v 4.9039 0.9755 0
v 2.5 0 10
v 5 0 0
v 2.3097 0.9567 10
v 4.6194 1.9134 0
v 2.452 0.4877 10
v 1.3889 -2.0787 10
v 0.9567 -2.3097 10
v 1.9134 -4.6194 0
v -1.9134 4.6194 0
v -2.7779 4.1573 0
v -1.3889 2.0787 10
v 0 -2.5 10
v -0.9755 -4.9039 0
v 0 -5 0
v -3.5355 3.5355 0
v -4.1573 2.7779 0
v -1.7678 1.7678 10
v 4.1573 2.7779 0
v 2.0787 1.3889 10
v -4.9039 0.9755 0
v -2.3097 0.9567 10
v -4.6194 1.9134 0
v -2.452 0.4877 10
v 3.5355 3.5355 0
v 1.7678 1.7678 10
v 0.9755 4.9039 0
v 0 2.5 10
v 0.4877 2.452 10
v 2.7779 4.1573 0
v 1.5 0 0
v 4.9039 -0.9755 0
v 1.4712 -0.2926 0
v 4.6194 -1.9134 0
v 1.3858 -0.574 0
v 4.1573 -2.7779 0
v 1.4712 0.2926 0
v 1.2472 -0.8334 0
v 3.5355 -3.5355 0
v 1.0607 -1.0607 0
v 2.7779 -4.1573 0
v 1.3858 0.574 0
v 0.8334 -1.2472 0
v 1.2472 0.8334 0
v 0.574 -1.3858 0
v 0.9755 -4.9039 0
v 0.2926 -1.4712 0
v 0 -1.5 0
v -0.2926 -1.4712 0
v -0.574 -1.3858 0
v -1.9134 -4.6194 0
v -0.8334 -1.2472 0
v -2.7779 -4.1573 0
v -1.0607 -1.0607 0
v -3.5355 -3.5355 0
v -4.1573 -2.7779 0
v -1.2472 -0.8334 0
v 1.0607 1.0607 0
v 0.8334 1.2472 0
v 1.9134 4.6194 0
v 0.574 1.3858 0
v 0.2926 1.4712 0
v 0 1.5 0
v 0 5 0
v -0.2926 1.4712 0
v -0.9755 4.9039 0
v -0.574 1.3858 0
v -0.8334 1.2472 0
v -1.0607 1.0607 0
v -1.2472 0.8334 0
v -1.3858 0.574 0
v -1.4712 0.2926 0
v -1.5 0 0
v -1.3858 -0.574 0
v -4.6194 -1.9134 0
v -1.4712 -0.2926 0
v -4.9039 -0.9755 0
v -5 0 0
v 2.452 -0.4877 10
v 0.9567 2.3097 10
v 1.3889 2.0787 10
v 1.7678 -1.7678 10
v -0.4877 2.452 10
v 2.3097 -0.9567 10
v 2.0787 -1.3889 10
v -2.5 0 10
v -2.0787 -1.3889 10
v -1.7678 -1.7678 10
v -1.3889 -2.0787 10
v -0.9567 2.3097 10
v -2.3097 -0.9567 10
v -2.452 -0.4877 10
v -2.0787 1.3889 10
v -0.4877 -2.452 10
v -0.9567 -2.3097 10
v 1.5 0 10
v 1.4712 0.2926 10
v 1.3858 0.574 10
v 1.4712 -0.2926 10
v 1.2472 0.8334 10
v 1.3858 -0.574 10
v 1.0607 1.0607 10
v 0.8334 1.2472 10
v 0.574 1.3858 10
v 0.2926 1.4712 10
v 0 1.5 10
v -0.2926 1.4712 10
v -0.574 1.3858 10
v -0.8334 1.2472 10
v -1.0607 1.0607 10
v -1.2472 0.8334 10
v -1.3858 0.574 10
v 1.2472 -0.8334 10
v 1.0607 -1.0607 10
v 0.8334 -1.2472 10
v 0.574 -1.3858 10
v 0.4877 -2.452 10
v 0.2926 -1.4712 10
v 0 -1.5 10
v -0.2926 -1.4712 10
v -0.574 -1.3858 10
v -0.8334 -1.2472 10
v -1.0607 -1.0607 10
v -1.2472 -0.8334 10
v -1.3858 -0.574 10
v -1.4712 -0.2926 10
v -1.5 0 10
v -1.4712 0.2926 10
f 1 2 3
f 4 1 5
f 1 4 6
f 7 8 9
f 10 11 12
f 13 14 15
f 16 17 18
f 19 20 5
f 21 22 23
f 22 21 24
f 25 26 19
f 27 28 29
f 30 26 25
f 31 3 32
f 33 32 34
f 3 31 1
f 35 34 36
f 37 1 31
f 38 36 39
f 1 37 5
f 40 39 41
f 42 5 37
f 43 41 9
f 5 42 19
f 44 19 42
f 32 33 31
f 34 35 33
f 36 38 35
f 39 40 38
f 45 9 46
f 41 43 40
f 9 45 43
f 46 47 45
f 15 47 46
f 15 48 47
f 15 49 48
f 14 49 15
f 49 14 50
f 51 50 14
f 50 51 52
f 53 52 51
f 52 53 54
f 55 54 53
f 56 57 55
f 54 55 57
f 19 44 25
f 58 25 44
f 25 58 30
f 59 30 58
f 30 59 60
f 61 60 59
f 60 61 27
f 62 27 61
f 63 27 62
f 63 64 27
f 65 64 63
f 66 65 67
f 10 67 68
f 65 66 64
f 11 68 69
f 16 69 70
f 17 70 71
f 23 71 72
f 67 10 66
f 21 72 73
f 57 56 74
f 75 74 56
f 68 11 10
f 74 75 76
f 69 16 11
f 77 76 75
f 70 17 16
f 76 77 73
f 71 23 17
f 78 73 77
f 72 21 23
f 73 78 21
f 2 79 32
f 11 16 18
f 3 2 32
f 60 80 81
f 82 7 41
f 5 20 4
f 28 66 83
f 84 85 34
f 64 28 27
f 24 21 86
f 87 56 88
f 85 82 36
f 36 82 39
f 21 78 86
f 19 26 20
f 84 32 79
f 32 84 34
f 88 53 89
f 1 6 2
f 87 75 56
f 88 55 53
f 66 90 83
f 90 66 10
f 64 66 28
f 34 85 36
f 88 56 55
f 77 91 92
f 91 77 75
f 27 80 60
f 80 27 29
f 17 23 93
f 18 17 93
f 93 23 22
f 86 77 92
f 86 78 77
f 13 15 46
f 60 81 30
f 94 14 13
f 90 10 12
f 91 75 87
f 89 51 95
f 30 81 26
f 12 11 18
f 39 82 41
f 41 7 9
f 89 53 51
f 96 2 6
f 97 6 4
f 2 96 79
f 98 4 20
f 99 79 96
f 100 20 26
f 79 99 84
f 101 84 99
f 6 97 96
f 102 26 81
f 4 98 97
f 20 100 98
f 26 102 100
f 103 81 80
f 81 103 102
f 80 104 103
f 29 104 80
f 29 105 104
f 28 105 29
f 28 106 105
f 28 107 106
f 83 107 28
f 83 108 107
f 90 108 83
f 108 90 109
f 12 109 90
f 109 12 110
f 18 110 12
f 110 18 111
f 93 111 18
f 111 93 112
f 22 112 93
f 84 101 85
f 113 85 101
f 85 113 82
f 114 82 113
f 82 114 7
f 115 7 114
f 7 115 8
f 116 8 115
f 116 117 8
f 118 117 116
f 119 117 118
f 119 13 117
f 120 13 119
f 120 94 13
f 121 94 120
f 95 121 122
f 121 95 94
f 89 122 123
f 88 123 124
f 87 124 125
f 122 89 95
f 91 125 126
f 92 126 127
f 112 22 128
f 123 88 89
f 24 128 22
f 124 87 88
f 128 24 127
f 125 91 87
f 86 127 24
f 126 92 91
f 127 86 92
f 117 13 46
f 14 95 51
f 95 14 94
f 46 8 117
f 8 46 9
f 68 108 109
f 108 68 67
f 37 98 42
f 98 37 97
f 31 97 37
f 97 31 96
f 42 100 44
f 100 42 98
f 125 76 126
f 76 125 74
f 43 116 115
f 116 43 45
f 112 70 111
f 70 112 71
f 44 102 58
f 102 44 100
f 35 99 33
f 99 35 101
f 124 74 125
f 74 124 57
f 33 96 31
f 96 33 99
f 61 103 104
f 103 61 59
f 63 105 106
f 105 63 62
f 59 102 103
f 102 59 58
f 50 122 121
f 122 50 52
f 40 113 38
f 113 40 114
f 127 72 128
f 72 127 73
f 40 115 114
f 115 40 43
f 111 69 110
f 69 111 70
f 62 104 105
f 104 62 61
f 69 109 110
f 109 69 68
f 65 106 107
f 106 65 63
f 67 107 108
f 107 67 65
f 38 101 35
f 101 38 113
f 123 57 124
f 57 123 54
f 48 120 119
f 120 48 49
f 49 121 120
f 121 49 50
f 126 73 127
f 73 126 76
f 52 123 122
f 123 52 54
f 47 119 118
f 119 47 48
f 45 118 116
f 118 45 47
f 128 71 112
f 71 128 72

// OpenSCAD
$fn=32;
difference(){
cylinder(d2=5,d1=10,h=10);
translate([0,0,-2])
cylinder(d=3,h=20);
}
